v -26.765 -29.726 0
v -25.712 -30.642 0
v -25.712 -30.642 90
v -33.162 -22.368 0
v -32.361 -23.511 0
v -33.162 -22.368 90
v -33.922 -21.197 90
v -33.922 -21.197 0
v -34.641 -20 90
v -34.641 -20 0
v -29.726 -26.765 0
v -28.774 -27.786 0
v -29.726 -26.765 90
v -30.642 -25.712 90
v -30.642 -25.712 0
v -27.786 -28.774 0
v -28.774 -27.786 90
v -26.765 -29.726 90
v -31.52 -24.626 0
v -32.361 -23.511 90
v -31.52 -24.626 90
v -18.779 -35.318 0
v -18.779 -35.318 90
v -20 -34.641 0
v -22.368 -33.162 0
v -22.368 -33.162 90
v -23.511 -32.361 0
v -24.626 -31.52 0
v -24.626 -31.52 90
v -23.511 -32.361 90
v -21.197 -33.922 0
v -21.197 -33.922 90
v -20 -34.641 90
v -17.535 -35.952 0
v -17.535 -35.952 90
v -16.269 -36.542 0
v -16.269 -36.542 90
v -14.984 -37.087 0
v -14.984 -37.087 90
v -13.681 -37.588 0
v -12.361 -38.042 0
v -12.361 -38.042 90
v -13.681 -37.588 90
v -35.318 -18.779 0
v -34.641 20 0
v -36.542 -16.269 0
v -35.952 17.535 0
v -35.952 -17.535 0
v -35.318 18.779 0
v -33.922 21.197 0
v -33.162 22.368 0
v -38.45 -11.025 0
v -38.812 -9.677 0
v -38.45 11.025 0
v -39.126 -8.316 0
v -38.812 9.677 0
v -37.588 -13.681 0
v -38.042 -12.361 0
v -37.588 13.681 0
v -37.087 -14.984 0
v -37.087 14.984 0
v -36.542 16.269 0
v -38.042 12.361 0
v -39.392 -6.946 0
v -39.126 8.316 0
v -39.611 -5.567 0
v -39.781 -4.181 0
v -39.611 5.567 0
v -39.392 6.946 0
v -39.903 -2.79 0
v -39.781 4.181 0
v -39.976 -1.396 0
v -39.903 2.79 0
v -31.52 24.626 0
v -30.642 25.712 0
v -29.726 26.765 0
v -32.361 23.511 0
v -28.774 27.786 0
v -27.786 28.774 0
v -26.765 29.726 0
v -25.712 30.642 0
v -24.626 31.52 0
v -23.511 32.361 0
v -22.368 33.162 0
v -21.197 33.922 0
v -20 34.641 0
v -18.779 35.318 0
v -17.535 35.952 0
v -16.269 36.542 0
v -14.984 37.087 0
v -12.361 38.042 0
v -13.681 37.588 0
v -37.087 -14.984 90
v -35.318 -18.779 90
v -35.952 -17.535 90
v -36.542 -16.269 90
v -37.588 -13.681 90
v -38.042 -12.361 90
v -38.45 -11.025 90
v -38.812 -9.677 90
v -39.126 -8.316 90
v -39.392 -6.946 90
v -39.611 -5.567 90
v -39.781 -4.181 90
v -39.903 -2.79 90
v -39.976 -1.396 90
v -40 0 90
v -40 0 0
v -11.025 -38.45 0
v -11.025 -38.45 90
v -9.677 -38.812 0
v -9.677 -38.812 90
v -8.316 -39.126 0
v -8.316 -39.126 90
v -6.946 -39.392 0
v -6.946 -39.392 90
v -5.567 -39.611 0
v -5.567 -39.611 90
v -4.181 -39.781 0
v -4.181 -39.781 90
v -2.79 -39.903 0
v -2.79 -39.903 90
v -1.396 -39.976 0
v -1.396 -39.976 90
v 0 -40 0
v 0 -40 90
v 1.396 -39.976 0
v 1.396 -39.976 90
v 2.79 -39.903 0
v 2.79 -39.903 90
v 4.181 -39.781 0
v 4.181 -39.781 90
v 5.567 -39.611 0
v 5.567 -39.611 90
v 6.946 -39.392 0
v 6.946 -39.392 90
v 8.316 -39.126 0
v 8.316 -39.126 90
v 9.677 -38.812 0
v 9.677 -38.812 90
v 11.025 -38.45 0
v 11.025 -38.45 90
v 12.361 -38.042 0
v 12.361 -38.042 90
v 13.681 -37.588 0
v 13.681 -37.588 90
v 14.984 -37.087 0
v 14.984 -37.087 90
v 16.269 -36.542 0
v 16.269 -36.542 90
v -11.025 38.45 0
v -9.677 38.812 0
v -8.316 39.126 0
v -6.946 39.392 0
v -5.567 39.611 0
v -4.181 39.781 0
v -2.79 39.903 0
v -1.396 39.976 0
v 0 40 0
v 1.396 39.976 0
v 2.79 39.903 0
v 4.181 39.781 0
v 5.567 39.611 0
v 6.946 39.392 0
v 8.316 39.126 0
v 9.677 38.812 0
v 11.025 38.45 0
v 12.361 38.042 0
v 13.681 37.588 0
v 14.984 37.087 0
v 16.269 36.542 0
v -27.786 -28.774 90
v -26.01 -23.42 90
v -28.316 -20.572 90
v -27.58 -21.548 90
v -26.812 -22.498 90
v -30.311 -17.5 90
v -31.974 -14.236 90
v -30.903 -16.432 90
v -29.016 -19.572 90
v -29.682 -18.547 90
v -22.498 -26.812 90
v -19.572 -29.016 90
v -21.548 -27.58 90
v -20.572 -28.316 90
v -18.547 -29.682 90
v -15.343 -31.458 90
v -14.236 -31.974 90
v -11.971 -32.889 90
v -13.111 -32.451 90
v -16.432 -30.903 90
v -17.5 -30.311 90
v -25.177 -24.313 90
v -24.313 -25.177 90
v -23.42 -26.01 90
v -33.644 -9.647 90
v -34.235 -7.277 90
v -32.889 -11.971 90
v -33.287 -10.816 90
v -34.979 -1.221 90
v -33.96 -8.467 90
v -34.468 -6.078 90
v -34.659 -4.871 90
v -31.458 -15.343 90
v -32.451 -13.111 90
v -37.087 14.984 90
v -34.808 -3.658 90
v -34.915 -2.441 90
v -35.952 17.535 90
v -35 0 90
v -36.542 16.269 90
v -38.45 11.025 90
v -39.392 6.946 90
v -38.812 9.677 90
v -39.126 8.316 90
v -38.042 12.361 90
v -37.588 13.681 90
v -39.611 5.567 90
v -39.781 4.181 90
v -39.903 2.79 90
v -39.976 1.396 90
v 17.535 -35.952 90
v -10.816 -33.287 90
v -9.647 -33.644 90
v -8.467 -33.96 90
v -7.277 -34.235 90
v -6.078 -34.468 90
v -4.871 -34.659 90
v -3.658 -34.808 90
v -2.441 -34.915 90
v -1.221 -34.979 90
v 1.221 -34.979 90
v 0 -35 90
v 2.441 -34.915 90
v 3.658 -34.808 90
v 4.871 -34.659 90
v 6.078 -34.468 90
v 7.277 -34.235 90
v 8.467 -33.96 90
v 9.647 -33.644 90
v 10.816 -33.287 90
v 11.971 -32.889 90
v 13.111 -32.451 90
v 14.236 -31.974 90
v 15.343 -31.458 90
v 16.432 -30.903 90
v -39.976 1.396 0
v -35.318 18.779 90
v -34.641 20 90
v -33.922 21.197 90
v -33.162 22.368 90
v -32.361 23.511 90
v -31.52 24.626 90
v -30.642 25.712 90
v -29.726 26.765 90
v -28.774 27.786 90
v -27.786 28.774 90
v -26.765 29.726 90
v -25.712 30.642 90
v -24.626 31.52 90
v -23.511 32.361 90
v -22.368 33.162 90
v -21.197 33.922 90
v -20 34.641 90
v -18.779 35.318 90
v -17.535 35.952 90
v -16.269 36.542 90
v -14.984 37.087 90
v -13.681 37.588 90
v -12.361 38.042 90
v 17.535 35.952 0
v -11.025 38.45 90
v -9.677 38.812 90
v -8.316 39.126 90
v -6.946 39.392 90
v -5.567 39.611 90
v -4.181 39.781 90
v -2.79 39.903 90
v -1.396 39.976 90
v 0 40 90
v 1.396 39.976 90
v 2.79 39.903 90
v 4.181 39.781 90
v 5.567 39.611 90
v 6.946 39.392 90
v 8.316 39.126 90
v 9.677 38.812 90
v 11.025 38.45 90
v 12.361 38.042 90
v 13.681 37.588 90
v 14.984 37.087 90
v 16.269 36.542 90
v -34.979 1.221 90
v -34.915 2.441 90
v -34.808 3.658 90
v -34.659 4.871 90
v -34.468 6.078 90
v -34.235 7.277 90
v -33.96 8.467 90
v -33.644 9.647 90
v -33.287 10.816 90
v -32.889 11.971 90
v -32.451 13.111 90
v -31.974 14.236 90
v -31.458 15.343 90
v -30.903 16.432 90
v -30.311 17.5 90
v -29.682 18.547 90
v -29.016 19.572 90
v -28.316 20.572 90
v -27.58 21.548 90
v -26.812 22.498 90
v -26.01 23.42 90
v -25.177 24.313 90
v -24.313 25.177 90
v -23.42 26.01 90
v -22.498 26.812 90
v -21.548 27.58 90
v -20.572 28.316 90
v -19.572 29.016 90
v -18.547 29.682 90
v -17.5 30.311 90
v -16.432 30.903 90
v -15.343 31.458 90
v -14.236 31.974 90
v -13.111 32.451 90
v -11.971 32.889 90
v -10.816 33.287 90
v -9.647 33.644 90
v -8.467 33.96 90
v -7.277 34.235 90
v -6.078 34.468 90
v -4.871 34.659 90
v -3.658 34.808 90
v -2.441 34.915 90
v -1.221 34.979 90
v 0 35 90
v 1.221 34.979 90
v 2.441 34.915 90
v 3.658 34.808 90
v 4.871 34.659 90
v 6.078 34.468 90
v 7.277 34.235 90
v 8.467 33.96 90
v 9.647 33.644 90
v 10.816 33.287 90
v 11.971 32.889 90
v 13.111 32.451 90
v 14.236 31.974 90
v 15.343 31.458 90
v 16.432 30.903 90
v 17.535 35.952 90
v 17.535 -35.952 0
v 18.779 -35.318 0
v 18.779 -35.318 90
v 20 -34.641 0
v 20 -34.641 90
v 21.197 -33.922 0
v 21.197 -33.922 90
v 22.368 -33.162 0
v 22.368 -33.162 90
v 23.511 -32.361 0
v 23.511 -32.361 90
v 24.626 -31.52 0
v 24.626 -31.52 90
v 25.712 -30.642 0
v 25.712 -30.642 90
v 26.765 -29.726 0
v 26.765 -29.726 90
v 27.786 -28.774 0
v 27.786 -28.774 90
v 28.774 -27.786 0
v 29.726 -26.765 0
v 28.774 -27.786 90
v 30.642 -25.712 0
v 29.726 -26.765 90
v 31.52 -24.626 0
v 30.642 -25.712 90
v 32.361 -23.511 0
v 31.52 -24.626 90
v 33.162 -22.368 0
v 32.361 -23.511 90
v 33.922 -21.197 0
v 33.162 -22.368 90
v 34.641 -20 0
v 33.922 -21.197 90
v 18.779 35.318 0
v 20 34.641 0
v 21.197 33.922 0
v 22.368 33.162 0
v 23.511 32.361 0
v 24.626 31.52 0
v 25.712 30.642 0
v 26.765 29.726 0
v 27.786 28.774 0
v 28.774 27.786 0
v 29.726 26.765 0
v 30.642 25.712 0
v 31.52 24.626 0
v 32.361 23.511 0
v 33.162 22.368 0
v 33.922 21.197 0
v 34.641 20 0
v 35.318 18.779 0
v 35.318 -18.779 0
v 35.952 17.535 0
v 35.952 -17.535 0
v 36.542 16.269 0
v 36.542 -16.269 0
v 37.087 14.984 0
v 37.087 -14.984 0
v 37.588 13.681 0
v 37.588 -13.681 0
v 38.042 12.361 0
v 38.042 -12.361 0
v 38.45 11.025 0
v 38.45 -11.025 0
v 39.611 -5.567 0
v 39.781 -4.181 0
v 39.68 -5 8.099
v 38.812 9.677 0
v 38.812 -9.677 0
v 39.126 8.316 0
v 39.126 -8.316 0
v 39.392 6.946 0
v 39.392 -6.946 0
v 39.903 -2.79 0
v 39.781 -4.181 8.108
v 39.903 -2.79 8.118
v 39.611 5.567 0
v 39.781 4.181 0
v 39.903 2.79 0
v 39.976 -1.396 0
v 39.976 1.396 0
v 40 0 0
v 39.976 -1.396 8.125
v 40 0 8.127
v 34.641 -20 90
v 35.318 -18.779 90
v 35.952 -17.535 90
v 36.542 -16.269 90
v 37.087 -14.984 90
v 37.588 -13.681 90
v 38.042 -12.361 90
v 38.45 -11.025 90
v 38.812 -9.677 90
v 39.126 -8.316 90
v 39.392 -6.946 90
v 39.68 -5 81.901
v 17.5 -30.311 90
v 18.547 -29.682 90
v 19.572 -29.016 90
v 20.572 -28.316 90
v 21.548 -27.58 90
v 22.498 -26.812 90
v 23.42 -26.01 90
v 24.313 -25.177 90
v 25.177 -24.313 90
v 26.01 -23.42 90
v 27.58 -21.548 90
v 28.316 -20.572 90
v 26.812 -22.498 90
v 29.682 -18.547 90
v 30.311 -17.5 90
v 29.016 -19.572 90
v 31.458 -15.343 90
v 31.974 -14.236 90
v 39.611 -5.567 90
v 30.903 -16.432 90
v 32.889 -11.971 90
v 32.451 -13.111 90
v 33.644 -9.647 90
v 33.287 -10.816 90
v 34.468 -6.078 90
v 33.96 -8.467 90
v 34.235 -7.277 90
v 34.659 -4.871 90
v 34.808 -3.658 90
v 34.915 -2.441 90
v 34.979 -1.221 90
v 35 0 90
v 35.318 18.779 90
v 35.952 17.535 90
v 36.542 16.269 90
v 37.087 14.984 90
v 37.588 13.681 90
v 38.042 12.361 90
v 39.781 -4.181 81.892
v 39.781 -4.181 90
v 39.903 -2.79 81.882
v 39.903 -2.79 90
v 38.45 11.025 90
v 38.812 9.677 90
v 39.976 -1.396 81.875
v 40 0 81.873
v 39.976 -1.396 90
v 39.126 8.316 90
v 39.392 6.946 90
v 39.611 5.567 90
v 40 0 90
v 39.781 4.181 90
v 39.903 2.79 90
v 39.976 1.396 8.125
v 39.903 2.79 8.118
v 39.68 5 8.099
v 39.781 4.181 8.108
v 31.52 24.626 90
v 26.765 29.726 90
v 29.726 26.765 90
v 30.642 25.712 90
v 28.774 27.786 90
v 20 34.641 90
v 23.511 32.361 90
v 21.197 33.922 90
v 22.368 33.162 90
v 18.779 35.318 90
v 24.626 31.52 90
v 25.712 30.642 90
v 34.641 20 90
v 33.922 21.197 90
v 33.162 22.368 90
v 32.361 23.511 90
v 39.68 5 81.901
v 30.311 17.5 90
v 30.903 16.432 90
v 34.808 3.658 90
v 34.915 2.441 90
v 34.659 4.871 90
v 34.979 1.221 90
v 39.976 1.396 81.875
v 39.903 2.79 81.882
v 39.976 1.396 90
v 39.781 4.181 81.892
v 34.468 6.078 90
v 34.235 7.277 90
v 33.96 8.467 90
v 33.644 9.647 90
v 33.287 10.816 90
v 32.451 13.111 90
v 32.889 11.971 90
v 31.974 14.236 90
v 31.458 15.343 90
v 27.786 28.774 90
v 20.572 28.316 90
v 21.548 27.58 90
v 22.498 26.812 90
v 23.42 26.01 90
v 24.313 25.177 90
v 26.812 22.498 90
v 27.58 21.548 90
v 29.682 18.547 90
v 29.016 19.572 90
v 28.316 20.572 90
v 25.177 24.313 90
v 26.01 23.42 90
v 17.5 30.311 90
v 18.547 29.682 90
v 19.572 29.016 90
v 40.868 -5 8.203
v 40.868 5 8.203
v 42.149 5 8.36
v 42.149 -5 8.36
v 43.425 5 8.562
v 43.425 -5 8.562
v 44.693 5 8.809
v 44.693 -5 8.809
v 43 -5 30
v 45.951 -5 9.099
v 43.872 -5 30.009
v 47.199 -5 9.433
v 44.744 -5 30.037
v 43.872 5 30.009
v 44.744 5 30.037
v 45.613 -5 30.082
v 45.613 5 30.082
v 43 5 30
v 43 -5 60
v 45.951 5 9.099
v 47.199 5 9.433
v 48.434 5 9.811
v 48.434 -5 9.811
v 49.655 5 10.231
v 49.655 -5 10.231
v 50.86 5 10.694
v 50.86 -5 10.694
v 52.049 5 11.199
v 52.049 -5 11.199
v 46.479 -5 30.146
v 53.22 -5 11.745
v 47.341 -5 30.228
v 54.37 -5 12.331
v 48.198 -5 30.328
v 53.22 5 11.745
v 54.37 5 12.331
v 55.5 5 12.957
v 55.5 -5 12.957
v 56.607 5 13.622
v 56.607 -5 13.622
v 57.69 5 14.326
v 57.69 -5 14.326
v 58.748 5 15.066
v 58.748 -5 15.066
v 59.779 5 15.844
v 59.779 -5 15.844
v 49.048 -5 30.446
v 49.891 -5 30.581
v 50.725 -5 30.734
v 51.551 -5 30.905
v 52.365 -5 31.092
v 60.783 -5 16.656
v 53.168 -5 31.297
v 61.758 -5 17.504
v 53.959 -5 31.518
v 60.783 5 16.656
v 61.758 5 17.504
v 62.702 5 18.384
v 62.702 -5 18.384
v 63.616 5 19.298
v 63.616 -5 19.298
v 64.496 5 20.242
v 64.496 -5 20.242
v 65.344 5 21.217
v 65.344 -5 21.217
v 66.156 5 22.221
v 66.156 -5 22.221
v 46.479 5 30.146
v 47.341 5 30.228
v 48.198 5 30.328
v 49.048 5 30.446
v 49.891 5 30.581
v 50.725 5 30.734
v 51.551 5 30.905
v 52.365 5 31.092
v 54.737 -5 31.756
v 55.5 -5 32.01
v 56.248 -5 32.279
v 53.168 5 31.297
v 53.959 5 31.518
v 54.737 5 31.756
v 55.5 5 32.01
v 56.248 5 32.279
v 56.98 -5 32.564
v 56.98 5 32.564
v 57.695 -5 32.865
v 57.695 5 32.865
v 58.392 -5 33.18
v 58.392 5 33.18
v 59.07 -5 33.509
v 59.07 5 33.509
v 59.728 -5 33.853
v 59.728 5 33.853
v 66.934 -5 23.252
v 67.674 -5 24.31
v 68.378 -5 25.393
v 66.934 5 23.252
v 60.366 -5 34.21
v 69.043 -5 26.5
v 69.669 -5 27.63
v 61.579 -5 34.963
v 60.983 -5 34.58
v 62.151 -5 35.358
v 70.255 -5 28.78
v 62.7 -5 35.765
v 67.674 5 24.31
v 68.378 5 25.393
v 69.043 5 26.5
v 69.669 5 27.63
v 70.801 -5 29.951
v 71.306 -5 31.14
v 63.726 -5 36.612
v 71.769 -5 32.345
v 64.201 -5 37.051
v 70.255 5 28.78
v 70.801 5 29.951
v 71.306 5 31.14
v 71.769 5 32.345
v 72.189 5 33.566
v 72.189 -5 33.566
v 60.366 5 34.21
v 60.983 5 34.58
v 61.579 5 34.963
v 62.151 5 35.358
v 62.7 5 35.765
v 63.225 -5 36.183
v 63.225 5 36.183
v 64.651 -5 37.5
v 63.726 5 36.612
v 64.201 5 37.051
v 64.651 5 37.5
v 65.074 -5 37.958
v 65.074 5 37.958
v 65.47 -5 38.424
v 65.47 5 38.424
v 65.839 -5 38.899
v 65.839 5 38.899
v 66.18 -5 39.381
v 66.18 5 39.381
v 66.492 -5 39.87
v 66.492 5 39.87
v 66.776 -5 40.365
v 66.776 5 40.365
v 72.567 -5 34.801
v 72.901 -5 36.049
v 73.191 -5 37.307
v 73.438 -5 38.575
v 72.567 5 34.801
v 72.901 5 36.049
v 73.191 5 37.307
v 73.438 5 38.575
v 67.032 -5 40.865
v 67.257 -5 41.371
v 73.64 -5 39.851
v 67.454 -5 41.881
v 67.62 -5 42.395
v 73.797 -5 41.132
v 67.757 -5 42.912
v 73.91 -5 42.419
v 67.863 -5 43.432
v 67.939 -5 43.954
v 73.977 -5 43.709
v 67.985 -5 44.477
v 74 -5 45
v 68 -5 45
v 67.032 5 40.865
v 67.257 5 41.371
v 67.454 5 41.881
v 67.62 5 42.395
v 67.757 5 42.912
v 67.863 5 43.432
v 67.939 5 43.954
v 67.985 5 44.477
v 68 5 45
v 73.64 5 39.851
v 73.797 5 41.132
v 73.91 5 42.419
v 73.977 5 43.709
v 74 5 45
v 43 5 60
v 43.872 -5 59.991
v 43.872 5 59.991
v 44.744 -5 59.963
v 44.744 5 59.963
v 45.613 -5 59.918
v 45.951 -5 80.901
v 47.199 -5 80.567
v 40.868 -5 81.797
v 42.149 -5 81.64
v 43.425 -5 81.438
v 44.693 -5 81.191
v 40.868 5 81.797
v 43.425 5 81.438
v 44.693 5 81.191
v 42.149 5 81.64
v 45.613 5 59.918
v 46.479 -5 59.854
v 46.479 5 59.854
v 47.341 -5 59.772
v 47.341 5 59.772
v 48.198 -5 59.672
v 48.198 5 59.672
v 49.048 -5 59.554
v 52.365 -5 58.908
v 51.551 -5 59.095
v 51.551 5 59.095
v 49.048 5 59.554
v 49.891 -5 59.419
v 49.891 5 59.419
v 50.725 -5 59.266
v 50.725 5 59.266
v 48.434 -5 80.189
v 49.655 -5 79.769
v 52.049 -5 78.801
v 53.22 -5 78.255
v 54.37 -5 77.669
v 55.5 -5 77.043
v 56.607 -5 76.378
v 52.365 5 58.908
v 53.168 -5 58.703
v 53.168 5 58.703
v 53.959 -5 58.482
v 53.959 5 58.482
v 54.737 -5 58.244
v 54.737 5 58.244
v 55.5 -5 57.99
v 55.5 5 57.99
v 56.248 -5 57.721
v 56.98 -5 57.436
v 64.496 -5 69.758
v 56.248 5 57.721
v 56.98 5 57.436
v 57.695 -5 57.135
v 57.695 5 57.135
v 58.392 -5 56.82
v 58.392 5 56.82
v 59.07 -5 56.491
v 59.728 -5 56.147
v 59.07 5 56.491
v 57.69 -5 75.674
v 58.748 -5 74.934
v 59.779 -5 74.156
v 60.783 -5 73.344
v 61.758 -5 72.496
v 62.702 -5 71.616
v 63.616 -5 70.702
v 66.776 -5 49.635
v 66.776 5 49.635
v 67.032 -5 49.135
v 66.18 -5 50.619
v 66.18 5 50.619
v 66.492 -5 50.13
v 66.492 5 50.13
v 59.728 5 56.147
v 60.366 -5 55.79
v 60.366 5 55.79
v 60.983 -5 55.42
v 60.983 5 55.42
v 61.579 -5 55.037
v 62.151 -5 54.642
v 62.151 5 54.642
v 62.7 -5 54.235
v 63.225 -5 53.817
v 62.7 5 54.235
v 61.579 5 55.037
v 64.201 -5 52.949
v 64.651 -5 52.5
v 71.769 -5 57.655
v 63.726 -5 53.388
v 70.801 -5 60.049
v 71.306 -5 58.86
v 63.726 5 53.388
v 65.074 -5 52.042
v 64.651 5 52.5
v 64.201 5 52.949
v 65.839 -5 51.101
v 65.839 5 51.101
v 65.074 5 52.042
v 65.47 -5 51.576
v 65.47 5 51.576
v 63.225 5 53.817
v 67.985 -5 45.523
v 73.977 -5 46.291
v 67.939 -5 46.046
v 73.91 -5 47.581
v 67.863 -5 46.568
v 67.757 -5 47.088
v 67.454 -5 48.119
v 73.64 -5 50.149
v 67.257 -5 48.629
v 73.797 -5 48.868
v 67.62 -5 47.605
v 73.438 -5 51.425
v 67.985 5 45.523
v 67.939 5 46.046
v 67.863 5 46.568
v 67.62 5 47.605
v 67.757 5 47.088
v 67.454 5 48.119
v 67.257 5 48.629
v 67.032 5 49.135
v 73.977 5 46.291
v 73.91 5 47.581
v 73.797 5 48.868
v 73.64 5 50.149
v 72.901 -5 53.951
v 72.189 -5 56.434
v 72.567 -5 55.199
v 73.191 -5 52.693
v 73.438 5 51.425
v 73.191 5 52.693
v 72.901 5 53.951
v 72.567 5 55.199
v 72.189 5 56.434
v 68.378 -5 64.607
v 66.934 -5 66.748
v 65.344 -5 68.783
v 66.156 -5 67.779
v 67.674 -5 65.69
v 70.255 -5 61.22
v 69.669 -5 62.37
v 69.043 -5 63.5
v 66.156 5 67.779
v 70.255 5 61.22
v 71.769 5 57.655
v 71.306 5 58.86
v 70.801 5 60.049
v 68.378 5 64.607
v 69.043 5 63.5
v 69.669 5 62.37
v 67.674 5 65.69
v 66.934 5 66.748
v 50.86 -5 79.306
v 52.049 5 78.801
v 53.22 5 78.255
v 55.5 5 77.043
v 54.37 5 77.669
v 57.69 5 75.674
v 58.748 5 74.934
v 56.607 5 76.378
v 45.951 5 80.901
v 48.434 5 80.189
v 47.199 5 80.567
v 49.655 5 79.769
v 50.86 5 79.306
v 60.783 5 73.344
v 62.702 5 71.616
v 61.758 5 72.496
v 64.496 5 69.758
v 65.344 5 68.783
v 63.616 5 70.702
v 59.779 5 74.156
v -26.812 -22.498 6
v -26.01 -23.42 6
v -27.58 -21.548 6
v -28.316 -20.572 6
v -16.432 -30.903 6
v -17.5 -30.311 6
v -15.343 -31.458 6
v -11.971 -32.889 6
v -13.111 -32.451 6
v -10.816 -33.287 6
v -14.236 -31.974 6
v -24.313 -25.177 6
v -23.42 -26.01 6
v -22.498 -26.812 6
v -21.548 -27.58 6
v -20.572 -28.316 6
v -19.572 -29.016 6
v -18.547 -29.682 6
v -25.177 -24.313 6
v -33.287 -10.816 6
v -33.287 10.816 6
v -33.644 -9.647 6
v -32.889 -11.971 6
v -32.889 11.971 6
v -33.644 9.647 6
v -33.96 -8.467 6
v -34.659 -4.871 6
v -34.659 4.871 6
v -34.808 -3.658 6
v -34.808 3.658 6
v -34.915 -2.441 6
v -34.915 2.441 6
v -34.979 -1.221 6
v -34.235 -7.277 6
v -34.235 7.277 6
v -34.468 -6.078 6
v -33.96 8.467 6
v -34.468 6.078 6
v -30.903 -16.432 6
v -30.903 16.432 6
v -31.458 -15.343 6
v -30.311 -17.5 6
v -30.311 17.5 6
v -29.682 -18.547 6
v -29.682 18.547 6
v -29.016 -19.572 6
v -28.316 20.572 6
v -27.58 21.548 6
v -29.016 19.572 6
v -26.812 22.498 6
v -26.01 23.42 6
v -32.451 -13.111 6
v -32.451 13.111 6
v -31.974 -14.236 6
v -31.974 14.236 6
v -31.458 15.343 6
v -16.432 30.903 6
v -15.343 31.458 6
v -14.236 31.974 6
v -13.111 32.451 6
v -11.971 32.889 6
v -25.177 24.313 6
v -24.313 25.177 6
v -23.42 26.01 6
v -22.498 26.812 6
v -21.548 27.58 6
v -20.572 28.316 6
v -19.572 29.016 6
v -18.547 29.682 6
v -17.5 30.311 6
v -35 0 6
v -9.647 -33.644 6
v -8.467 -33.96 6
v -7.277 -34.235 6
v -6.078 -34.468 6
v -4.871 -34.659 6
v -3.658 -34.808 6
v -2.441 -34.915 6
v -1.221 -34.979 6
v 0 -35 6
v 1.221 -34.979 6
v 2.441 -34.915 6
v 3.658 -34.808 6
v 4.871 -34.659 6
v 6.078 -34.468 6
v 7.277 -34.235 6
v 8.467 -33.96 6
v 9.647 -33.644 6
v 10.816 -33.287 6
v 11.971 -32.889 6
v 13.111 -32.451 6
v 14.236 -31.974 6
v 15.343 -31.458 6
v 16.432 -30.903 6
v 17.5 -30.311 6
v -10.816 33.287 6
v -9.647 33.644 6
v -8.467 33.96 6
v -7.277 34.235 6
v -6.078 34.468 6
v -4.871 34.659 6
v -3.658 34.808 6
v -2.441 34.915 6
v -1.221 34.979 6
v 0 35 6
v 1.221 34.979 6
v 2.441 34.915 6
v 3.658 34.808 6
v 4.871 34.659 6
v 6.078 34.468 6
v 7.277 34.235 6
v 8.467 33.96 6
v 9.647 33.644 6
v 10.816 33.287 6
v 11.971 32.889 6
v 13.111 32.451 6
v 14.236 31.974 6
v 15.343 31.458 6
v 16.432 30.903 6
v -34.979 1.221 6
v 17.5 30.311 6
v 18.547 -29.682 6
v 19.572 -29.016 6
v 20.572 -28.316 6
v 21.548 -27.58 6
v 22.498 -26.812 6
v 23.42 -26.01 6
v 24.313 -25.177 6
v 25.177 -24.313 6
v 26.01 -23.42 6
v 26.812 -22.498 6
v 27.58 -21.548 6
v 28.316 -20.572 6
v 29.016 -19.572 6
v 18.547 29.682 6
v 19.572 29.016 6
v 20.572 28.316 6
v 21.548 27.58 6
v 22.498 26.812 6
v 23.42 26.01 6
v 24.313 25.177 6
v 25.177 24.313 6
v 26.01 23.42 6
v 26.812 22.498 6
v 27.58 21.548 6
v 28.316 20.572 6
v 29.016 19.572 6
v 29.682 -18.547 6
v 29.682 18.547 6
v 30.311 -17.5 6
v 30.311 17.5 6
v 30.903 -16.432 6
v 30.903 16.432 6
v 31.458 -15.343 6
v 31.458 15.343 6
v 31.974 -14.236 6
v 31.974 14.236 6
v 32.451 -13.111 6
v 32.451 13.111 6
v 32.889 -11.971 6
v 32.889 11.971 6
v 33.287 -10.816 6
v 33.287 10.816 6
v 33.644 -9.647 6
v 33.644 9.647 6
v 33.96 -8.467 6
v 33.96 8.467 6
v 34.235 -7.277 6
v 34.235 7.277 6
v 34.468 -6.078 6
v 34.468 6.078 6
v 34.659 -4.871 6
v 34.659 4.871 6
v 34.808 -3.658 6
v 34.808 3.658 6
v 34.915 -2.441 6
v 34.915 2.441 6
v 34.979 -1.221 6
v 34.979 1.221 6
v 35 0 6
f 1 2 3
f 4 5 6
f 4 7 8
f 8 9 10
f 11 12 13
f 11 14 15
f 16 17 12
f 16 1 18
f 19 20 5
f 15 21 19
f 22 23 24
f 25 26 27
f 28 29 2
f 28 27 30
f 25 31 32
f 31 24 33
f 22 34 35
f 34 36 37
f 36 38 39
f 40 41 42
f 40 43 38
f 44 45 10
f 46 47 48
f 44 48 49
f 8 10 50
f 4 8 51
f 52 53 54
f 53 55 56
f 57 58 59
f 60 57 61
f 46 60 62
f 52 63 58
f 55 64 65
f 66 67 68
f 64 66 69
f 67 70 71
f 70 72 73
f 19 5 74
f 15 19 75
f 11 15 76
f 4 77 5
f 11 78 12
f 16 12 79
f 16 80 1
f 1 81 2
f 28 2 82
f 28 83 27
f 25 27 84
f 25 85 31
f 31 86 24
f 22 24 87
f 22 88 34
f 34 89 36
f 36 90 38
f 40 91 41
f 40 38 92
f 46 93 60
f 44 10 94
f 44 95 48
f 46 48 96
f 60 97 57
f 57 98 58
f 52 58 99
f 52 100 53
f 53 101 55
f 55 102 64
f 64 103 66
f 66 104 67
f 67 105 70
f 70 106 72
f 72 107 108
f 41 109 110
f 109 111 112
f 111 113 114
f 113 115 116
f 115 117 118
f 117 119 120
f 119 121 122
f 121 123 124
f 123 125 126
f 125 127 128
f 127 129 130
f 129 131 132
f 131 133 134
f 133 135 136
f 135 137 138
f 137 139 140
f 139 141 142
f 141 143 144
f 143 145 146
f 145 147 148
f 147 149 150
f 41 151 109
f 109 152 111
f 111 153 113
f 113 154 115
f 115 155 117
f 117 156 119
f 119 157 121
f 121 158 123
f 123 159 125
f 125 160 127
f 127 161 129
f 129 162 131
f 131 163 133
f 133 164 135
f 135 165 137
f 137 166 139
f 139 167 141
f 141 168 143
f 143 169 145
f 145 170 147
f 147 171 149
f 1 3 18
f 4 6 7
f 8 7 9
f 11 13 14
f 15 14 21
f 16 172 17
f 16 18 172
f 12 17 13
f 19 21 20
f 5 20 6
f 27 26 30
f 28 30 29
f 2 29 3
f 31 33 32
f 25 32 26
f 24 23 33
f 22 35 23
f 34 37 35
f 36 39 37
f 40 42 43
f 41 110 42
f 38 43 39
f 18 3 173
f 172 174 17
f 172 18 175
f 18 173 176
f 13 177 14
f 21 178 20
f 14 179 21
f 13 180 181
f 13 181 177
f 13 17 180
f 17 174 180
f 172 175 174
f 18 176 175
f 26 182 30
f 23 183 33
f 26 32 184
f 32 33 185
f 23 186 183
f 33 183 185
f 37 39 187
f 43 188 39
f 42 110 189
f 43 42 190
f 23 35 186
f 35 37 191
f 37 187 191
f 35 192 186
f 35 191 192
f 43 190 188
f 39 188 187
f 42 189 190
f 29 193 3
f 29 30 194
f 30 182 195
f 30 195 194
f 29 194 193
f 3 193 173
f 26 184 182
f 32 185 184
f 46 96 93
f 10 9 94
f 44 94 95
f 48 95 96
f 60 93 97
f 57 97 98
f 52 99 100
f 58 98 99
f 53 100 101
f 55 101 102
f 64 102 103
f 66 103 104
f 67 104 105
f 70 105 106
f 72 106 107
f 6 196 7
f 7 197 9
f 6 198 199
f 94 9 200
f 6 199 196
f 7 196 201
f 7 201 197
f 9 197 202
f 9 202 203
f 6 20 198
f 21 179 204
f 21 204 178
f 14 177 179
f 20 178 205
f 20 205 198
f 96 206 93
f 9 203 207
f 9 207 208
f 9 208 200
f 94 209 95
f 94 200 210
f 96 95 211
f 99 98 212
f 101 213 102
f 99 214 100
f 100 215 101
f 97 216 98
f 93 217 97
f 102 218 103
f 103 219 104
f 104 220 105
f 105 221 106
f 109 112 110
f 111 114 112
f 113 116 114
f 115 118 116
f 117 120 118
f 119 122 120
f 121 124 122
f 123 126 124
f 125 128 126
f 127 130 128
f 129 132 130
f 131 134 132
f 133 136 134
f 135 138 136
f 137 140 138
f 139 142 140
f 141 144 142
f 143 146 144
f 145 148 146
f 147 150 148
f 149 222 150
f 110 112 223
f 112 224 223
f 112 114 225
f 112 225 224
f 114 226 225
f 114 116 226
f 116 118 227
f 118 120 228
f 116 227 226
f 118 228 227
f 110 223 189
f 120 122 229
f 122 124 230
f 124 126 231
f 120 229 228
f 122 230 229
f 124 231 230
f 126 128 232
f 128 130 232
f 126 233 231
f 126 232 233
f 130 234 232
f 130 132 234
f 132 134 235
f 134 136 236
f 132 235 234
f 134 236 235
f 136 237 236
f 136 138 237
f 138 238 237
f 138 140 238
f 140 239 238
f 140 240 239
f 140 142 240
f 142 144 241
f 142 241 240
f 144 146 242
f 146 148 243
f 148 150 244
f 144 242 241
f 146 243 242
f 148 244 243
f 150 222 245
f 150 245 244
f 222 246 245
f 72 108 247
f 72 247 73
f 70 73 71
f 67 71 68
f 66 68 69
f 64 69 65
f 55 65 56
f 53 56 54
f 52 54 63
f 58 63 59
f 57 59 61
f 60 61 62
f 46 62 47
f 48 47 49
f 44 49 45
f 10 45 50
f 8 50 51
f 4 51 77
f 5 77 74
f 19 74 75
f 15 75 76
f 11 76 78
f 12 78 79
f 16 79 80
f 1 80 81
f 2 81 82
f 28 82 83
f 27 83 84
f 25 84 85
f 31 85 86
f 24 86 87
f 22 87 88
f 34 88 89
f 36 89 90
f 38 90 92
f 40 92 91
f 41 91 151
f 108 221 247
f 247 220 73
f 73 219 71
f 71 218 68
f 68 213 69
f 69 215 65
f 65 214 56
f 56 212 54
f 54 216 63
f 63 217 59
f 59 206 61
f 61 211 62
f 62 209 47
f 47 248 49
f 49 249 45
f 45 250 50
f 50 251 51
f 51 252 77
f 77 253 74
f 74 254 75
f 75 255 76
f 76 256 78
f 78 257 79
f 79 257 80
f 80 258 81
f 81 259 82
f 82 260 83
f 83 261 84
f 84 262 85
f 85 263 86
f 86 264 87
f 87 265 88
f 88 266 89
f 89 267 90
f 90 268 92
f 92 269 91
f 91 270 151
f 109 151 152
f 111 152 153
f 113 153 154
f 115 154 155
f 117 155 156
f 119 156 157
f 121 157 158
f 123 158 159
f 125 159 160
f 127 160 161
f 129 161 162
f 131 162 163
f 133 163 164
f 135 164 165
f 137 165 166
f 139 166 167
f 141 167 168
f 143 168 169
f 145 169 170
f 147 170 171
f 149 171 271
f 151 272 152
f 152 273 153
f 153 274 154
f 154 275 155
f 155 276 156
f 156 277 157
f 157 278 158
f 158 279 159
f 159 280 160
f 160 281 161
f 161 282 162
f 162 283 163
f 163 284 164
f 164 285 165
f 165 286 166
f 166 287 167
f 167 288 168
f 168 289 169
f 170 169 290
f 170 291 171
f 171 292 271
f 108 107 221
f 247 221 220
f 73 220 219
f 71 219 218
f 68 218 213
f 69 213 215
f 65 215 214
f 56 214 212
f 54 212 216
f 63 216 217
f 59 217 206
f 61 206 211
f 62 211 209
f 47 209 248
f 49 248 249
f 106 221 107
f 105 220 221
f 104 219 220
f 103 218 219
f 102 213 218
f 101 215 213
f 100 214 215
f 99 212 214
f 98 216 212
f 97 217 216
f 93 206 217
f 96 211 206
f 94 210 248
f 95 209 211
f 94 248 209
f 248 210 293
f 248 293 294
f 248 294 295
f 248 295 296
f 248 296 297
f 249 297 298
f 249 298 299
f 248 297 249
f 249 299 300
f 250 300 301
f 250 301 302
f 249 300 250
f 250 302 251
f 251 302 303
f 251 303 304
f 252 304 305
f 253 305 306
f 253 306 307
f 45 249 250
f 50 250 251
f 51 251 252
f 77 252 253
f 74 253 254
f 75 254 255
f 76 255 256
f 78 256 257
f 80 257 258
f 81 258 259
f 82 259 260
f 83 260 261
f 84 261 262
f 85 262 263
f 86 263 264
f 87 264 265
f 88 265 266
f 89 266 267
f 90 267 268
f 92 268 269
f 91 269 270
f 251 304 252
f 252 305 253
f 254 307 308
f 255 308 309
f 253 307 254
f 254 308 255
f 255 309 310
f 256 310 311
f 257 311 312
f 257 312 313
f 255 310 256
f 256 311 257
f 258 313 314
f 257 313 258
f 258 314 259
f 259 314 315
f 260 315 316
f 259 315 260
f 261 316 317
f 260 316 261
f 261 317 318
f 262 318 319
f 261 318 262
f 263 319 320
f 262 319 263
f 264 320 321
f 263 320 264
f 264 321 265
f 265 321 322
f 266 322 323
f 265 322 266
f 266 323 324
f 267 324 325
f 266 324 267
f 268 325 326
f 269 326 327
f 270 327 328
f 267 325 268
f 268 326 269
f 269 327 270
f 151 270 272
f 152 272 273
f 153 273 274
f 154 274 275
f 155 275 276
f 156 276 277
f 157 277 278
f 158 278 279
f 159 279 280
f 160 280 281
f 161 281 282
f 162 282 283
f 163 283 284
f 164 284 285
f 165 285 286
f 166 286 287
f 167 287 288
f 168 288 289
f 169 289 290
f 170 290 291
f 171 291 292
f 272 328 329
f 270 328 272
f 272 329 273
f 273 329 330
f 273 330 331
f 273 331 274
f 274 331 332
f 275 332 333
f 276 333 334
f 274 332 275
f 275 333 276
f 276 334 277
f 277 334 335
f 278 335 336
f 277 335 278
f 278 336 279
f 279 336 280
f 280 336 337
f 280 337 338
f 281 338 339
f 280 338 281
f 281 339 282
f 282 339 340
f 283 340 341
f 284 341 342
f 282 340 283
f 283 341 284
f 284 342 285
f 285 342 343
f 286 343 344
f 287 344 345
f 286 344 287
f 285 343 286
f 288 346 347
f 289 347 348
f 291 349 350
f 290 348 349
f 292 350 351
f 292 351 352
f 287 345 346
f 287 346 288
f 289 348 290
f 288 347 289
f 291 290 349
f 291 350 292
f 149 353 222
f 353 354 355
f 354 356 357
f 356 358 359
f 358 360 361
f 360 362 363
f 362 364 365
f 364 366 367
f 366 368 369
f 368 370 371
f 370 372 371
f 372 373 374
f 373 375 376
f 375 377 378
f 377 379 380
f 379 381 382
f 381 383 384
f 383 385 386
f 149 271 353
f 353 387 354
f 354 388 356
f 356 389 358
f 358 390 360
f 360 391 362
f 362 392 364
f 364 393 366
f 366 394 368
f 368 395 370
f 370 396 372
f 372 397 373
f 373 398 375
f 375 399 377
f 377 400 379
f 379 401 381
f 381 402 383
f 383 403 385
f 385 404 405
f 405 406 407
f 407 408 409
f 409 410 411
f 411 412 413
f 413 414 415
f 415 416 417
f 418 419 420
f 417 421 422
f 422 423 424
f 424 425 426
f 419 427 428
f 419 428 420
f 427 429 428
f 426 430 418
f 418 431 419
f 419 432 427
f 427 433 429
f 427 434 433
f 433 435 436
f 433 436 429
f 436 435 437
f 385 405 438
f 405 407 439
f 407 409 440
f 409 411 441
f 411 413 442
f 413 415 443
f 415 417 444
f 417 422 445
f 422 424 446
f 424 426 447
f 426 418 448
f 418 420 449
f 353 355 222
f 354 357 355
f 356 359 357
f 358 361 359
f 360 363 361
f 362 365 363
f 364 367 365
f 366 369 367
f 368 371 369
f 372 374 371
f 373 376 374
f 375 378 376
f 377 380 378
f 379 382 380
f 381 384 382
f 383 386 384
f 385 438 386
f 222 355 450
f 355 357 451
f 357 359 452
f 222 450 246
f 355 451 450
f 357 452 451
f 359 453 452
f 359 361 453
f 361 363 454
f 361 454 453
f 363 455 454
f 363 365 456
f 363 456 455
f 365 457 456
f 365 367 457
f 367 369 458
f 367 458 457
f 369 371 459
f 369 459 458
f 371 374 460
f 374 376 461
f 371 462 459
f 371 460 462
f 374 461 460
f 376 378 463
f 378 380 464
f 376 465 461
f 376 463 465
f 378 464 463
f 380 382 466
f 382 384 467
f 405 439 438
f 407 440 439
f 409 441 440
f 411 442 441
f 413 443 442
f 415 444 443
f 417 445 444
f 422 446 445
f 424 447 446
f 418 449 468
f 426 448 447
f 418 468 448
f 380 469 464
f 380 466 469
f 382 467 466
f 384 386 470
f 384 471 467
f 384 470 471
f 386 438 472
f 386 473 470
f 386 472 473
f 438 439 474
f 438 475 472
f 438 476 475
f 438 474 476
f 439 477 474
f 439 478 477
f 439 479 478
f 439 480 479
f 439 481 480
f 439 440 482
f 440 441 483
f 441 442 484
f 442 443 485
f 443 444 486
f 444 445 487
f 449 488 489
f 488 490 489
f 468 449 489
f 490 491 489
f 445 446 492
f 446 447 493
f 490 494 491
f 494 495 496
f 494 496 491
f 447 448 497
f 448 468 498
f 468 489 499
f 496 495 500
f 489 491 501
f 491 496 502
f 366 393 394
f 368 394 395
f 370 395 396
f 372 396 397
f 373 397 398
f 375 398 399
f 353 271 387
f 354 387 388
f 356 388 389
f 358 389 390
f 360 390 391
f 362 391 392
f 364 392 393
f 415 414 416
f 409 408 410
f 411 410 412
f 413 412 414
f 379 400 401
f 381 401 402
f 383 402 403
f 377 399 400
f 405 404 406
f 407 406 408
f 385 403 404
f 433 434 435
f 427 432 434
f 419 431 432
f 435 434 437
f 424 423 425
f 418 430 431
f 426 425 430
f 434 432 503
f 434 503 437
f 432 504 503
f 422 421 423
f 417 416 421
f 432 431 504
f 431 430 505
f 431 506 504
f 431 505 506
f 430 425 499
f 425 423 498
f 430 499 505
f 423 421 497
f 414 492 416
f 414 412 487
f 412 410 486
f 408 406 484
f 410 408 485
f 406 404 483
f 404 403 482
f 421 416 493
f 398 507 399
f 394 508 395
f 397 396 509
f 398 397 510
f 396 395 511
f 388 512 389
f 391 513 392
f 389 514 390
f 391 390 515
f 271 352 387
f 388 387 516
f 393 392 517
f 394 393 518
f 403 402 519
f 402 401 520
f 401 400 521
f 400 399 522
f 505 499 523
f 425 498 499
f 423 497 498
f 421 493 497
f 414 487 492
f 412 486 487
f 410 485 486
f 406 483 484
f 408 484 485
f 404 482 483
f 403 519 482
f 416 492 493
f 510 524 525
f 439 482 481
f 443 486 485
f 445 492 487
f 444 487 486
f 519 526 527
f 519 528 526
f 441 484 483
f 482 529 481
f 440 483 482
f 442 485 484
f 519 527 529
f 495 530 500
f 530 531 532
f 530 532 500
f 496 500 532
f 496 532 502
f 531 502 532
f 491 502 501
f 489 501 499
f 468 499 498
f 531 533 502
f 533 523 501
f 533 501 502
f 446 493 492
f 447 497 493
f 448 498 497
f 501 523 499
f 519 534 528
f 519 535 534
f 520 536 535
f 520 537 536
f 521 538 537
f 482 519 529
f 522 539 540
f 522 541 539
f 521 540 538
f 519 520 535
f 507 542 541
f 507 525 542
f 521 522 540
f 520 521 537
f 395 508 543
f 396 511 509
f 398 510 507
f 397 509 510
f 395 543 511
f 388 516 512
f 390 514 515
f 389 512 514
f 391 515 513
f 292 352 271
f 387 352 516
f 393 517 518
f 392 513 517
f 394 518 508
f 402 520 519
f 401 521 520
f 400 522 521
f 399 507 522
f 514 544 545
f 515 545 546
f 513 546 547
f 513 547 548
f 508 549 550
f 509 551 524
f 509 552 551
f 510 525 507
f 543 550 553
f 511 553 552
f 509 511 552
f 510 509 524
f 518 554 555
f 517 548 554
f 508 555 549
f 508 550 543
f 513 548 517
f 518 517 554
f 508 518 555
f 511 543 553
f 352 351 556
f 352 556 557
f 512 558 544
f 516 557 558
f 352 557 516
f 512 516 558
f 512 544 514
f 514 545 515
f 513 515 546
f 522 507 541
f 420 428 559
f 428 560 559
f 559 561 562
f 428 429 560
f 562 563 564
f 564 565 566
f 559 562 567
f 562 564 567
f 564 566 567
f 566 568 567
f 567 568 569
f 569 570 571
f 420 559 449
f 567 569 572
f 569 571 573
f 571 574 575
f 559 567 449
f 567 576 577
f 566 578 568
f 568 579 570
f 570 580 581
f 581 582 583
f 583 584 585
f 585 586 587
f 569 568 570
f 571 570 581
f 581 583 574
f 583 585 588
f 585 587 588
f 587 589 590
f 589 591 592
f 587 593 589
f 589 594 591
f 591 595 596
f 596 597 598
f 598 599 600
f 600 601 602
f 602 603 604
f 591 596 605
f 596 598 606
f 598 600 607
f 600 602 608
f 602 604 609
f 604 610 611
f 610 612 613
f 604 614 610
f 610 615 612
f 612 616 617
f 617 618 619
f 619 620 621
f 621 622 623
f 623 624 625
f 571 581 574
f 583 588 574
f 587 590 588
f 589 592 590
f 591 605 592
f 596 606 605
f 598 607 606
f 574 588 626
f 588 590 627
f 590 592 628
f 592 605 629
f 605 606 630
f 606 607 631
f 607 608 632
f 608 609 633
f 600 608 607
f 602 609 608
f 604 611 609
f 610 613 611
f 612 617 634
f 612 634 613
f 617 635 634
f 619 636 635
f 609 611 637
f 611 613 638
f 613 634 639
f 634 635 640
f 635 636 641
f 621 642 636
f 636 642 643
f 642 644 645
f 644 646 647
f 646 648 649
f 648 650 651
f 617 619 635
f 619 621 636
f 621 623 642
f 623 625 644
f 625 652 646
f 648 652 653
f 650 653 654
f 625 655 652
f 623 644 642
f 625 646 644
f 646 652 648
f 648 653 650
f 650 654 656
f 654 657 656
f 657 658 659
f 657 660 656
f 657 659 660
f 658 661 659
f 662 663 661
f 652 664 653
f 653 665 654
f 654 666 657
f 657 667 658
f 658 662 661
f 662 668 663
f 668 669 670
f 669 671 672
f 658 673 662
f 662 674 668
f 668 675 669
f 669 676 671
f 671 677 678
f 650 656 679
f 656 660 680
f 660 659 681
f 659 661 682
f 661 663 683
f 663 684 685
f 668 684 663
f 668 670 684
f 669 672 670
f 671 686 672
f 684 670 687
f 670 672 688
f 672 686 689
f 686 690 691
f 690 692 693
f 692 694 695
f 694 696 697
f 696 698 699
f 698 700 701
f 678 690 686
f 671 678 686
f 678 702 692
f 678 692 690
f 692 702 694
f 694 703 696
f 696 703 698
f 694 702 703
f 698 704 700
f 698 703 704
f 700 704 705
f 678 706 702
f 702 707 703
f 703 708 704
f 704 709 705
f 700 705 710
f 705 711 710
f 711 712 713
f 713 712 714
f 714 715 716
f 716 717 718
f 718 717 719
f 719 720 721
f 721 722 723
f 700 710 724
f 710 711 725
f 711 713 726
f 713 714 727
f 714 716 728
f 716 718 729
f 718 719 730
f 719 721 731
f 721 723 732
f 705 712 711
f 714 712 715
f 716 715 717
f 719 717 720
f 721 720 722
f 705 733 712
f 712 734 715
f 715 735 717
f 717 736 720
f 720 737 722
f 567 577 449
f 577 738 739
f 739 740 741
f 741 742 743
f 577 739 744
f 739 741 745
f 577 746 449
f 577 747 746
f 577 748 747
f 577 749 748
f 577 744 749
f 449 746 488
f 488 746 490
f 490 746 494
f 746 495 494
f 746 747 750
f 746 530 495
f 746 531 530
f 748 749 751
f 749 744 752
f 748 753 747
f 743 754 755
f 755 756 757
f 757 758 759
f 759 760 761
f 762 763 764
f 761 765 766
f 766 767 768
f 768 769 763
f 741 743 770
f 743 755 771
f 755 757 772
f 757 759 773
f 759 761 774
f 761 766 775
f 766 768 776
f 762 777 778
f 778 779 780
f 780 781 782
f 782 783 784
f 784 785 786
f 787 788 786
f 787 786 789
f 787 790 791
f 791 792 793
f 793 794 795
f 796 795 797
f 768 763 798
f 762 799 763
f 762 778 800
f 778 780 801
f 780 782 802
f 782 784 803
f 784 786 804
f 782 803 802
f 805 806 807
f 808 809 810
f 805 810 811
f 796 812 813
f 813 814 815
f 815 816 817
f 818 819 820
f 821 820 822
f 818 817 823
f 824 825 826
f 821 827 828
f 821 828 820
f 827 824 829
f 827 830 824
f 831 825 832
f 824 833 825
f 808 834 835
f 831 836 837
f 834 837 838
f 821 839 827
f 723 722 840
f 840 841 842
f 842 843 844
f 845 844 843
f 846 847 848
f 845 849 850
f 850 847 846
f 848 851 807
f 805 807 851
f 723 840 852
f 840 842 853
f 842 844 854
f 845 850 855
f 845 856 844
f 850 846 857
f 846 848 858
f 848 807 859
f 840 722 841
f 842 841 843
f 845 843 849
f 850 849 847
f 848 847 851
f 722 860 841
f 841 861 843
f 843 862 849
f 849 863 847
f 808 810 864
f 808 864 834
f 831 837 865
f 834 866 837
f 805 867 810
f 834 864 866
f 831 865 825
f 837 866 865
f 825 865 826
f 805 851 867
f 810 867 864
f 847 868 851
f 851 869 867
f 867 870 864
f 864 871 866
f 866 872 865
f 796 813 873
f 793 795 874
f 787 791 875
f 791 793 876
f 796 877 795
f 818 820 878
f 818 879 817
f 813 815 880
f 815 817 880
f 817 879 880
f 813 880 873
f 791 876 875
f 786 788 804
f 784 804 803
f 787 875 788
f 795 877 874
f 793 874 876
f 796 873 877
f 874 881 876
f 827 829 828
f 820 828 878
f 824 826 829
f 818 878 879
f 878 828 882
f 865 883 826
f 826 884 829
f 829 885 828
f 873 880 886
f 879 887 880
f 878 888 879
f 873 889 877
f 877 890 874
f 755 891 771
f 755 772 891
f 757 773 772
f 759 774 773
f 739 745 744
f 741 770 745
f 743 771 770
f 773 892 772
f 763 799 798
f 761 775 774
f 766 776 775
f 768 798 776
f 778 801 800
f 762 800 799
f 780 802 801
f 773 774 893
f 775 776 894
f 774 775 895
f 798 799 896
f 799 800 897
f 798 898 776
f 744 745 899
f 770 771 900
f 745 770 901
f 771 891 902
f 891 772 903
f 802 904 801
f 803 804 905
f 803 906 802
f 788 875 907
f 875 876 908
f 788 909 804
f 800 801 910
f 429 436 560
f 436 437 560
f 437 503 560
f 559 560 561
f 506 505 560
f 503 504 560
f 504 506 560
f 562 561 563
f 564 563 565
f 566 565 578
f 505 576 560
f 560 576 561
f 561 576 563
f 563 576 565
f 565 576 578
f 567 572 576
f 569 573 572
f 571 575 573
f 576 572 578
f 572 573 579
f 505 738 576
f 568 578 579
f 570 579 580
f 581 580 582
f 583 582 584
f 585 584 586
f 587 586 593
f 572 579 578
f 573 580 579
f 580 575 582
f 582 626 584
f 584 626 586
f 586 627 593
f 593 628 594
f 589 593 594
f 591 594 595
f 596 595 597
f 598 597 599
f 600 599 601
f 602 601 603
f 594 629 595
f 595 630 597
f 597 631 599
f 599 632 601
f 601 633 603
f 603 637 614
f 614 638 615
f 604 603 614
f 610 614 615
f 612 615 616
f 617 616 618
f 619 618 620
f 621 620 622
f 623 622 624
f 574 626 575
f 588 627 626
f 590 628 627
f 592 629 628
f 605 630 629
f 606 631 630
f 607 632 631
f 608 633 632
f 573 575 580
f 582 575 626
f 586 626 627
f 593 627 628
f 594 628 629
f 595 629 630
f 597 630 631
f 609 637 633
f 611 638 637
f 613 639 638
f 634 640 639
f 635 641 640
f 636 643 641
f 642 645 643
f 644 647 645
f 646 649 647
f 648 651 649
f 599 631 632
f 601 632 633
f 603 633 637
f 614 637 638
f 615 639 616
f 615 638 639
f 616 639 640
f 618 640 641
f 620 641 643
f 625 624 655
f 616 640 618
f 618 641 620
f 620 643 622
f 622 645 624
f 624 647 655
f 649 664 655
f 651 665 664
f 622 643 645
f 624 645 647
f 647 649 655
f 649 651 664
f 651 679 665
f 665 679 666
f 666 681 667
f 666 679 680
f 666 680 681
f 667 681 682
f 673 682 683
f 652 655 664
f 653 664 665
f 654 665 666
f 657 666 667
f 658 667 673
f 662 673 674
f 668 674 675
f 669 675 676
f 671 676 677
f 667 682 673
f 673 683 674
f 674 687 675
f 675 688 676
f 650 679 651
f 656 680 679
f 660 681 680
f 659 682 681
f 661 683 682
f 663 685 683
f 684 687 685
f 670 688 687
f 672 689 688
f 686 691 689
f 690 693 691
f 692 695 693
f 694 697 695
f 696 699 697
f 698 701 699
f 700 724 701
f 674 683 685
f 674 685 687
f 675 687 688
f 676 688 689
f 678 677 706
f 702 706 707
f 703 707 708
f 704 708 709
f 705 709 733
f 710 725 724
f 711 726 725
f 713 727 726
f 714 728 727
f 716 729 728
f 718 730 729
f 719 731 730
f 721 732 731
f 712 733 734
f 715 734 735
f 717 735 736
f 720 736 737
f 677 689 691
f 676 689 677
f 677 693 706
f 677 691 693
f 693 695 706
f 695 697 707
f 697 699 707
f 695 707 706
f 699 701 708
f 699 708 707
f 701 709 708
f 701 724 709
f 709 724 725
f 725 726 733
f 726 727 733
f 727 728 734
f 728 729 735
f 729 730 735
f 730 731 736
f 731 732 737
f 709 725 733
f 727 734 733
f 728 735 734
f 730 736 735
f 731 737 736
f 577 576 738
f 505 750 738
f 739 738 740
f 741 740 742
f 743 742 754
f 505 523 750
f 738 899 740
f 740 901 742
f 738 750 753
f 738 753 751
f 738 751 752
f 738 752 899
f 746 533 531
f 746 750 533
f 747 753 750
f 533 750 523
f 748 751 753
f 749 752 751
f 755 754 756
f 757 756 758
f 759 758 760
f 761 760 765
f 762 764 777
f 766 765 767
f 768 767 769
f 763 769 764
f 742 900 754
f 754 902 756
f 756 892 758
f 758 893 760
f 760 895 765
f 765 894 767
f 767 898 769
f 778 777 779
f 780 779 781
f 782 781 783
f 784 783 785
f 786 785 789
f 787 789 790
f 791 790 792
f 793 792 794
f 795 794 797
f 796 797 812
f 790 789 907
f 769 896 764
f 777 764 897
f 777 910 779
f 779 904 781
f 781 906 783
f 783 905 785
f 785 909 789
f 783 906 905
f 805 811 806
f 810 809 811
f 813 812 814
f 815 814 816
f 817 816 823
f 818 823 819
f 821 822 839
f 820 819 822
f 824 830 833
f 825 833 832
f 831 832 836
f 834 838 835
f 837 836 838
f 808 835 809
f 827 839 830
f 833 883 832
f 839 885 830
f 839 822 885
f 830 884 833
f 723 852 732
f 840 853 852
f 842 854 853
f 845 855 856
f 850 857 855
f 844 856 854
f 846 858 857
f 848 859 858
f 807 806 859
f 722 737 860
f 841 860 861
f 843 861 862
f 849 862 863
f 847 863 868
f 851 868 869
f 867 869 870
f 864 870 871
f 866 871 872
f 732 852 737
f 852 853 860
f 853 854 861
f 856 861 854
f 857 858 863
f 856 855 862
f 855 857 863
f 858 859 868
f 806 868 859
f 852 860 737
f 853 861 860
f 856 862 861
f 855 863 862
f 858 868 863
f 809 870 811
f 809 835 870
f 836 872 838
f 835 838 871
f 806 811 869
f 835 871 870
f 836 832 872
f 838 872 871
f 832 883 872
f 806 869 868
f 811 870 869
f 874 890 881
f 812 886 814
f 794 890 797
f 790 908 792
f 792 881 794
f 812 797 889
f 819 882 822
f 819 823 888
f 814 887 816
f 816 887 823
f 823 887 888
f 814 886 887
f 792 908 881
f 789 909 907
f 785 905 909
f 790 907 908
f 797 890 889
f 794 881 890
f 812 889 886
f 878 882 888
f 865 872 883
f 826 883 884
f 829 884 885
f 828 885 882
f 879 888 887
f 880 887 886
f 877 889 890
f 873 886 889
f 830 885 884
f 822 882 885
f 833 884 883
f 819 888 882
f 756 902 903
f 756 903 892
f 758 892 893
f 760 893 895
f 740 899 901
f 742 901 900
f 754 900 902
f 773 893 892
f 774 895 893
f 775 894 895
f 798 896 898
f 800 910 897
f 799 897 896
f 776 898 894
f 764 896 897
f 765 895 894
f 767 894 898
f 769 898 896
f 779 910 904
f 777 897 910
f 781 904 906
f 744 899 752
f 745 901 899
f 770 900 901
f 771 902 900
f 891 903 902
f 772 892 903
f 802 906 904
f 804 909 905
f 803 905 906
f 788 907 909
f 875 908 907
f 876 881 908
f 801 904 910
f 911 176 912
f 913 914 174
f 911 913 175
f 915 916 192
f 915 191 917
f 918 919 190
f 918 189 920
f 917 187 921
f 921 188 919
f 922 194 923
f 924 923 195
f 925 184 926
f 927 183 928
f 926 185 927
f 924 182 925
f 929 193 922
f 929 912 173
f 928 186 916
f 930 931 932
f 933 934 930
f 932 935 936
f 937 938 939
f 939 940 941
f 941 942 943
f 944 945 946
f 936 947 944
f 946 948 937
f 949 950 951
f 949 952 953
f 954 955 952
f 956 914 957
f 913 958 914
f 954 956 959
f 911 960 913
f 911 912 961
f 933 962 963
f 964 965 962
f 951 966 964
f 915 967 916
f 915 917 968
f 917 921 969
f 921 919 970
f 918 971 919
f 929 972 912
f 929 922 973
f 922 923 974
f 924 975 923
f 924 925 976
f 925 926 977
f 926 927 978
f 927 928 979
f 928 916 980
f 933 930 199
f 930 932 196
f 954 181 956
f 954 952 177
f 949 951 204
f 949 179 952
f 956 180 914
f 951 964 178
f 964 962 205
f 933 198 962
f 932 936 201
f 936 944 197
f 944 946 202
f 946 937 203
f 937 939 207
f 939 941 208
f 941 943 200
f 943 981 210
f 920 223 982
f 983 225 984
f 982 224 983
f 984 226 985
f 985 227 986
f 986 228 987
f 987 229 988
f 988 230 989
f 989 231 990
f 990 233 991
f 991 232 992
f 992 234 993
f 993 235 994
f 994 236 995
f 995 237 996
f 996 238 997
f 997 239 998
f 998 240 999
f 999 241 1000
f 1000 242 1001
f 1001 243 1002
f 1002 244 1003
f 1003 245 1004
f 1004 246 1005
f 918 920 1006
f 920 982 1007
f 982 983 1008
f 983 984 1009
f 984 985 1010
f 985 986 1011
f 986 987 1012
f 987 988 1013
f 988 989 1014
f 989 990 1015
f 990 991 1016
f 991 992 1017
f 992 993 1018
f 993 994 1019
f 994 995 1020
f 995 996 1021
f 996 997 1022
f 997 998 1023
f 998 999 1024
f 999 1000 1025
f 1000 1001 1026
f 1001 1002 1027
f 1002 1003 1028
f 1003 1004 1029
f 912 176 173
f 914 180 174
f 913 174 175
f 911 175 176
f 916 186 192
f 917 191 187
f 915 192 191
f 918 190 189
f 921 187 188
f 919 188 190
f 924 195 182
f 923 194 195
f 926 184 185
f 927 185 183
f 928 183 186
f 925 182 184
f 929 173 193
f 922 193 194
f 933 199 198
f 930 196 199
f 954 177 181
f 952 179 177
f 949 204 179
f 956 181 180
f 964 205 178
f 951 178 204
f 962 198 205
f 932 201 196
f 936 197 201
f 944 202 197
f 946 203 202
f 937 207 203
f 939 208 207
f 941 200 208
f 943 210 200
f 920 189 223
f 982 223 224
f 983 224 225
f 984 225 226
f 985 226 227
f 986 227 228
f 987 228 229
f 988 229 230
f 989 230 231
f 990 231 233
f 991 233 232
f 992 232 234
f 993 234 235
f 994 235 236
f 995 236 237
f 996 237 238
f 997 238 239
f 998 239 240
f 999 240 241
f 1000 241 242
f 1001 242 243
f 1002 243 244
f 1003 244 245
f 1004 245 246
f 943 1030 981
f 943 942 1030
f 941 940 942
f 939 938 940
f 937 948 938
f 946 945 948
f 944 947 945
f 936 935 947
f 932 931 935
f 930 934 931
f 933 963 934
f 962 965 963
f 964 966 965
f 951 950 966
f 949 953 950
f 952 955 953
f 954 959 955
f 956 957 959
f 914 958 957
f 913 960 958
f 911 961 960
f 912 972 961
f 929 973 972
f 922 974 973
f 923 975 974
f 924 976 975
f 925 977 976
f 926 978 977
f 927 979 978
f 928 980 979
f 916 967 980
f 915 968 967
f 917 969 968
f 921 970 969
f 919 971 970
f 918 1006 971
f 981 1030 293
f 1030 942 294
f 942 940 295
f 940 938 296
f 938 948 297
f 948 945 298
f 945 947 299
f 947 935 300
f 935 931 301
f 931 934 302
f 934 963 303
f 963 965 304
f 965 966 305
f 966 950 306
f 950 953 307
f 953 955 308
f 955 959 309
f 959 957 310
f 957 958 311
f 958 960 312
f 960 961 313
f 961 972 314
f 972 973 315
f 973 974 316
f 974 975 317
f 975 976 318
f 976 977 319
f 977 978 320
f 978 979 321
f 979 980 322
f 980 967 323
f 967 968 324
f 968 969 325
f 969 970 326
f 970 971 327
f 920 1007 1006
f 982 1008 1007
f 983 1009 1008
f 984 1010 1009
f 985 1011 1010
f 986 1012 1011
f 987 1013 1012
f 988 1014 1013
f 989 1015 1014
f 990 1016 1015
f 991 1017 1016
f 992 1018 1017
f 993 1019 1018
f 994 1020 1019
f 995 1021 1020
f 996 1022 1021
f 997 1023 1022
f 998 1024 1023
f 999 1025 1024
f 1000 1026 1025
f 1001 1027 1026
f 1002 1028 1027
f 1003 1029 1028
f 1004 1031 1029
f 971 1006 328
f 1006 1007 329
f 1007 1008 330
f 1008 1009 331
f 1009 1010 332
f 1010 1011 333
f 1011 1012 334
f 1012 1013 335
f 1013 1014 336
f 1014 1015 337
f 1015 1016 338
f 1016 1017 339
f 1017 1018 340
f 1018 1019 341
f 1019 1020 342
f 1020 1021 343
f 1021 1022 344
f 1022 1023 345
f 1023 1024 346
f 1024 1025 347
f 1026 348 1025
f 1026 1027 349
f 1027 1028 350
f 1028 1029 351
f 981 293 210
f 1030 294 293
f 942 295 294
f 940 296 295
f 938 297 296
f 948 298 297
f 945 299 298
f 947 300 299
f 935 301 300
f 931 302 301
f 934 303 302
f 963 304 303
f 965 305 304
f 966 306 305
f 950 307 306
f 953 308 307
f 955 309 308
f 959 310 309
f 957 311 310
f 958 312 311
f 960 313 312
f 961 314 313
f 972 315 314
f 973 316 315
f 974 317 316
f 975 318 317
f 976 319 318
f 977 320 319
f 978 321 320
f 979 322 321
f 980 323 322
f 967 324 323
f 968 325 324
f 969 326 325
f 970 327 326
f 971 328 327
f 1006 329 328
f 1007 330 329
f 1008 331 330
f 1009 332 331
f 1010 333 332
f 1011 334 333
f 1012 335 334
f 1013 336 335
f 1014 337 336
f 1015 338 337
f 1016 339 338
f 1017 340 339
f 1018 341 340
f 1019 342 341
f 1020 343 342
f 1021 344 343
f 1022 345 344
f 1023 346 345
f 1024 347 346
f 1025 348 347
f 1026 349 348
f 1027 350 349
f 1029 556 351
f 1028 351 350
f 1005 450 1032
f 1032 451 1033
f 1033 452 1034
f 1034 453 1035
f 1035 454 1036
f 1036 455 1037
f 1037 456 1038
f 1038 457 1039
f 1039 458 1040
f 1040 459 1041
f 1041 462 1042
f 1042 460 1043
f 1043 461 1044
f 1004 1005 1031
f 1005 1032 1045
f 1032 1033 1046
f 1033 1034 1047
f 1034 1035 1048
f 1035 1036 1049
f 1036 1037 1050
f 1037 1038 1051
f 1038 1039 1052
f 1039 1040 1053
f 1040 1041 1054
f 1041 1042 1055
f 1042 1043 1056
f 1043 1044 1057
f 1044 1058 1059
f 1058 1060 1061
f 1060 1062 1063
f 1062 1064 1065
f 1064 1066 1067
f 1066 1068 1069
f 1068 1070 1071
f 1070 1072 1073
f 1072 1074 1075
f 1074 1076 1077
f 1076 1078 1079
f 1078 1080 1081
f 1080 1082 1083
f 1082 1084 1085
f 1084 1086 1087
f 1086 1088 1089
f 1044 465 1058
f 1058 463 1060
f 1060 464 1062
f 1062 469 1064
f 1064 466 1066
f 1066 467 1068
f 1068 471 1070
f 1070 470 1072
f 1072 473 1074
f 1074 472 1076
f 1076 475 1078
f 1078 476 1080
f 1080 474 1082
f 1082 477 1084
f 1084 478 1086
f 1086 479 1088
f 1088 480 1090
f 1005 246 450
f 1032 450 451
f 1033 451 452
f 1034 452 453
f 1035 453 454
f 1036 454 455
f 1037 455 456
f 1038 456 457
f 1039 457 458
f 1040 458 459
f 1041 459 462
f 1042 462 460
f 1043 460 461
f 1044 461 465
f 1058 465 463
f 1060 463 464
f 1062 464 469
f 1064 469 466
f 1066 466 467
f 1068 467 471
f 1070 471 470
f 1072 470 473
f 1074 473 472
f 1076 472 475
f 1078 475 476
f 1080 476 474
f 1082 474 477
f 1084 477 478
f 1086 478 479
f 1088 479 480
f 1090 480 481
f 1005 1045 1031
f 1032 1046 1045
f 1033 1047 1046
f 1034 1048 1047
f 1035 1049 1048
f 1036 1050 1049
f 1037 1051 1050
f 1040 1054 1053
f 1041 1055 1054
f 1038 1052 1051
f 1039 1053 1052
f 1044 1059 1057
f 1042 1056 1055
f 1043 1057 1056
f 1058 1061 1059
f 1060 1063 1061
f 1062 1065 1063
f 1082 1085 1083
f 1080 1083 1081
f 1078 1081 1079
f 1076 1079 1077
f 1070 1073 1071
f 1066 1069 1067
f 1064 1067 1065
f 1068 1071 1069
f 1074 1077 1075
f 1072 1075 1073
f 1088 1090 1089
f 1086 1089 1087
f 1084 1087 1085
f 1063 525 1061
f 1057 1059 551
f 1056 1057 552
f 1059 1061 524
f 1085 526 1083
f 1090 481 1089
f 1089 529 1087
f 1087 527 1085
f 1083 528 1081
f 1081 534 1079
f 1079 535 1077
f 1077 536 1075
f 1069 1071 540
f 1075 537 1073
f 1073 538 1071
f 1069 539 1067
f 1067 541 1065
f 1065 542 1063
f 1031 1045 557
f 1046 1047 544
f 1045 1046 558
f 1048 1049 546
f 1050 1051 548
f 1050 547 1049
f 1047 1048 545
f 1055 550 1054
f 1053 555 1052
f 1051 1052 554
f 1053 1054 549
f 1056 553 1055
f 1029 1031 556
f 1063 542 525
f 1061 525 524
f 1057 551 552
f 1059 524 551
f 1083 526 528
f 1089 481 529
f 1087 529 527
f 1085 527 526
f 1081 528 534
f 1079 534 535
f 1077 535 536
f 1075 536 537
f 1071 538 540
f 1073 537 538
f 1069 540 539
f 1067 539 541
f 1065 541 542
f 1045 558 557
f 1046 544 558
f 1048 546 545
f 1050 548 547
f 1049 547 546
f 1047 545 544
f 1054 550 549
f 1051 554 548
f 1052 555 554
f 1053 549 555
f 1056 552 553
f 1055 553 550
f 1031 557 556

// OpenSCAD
$fn = 180;

// 単位: mm
outer_diameter = 80;
inner_diameter = 70;
mug_height = 90;
bottom_thickness = 6;

handle_opening_height = 30;
handle_opening_width = 25;
handle_frame = 6;
handle_depth = 10;

outer_radius = outer_diameter / 2;
inner_radius = inner_diameter / 2;

handle_center_z = mug_height / 2;
handle_base_x = outer_radius - 3;
handle_outer_radius = handle_opening_width + 2 * handle_frame;
epsilon = 0.1;

// 外周は半円と直線からなる D 字。
// 開口は高さ 30 mm、幅 25 mm の半楕円。
module handle_profile() {
    difference() {
        intersection() {
            circle(r = handle_outer_radius);
            translate([0, -handle_outer_radius])
                square([
                    handle_outer_radius,
                    2 * handle_outer_radius
                ]);
        }

        translate([handle_frame, 0])
            intersection() {
                scale([
                    handle_opening_width,
                    handle_opening_height / 2
                ])
                    circle(r = 1);

                translate([0, -handle_opening_height / 2])
                    square([
                        handle_opening_width,
                        handle_opening_height
                    ]);
            }
    }
}

module handle() {
    // プロファイルを XZ 平面に配置し、Y 方向へ厚みを付ける。
    // 本体外周へ 3 mm 食い込ませ、面接触ではなく体積で接続。
    translate([handle_base_x, 0, handle_center_z])
        rotate([90, 0, 0])
            linear_extrude(height = handle_depth, center = true)
                handle_profile();
}

render(convexity = 10)
difference() {
    union() {
        cylinder(r = outer_radius, h = mug_height);
        handle();
    }

    // 上面を開放し、底に 6 mm 残す。
    translate([0, 0, bottom_thickness])
        cylinder(
            r = inner_radius,
            h = mug_height - bottom_thickness + epsilon
        );
}
